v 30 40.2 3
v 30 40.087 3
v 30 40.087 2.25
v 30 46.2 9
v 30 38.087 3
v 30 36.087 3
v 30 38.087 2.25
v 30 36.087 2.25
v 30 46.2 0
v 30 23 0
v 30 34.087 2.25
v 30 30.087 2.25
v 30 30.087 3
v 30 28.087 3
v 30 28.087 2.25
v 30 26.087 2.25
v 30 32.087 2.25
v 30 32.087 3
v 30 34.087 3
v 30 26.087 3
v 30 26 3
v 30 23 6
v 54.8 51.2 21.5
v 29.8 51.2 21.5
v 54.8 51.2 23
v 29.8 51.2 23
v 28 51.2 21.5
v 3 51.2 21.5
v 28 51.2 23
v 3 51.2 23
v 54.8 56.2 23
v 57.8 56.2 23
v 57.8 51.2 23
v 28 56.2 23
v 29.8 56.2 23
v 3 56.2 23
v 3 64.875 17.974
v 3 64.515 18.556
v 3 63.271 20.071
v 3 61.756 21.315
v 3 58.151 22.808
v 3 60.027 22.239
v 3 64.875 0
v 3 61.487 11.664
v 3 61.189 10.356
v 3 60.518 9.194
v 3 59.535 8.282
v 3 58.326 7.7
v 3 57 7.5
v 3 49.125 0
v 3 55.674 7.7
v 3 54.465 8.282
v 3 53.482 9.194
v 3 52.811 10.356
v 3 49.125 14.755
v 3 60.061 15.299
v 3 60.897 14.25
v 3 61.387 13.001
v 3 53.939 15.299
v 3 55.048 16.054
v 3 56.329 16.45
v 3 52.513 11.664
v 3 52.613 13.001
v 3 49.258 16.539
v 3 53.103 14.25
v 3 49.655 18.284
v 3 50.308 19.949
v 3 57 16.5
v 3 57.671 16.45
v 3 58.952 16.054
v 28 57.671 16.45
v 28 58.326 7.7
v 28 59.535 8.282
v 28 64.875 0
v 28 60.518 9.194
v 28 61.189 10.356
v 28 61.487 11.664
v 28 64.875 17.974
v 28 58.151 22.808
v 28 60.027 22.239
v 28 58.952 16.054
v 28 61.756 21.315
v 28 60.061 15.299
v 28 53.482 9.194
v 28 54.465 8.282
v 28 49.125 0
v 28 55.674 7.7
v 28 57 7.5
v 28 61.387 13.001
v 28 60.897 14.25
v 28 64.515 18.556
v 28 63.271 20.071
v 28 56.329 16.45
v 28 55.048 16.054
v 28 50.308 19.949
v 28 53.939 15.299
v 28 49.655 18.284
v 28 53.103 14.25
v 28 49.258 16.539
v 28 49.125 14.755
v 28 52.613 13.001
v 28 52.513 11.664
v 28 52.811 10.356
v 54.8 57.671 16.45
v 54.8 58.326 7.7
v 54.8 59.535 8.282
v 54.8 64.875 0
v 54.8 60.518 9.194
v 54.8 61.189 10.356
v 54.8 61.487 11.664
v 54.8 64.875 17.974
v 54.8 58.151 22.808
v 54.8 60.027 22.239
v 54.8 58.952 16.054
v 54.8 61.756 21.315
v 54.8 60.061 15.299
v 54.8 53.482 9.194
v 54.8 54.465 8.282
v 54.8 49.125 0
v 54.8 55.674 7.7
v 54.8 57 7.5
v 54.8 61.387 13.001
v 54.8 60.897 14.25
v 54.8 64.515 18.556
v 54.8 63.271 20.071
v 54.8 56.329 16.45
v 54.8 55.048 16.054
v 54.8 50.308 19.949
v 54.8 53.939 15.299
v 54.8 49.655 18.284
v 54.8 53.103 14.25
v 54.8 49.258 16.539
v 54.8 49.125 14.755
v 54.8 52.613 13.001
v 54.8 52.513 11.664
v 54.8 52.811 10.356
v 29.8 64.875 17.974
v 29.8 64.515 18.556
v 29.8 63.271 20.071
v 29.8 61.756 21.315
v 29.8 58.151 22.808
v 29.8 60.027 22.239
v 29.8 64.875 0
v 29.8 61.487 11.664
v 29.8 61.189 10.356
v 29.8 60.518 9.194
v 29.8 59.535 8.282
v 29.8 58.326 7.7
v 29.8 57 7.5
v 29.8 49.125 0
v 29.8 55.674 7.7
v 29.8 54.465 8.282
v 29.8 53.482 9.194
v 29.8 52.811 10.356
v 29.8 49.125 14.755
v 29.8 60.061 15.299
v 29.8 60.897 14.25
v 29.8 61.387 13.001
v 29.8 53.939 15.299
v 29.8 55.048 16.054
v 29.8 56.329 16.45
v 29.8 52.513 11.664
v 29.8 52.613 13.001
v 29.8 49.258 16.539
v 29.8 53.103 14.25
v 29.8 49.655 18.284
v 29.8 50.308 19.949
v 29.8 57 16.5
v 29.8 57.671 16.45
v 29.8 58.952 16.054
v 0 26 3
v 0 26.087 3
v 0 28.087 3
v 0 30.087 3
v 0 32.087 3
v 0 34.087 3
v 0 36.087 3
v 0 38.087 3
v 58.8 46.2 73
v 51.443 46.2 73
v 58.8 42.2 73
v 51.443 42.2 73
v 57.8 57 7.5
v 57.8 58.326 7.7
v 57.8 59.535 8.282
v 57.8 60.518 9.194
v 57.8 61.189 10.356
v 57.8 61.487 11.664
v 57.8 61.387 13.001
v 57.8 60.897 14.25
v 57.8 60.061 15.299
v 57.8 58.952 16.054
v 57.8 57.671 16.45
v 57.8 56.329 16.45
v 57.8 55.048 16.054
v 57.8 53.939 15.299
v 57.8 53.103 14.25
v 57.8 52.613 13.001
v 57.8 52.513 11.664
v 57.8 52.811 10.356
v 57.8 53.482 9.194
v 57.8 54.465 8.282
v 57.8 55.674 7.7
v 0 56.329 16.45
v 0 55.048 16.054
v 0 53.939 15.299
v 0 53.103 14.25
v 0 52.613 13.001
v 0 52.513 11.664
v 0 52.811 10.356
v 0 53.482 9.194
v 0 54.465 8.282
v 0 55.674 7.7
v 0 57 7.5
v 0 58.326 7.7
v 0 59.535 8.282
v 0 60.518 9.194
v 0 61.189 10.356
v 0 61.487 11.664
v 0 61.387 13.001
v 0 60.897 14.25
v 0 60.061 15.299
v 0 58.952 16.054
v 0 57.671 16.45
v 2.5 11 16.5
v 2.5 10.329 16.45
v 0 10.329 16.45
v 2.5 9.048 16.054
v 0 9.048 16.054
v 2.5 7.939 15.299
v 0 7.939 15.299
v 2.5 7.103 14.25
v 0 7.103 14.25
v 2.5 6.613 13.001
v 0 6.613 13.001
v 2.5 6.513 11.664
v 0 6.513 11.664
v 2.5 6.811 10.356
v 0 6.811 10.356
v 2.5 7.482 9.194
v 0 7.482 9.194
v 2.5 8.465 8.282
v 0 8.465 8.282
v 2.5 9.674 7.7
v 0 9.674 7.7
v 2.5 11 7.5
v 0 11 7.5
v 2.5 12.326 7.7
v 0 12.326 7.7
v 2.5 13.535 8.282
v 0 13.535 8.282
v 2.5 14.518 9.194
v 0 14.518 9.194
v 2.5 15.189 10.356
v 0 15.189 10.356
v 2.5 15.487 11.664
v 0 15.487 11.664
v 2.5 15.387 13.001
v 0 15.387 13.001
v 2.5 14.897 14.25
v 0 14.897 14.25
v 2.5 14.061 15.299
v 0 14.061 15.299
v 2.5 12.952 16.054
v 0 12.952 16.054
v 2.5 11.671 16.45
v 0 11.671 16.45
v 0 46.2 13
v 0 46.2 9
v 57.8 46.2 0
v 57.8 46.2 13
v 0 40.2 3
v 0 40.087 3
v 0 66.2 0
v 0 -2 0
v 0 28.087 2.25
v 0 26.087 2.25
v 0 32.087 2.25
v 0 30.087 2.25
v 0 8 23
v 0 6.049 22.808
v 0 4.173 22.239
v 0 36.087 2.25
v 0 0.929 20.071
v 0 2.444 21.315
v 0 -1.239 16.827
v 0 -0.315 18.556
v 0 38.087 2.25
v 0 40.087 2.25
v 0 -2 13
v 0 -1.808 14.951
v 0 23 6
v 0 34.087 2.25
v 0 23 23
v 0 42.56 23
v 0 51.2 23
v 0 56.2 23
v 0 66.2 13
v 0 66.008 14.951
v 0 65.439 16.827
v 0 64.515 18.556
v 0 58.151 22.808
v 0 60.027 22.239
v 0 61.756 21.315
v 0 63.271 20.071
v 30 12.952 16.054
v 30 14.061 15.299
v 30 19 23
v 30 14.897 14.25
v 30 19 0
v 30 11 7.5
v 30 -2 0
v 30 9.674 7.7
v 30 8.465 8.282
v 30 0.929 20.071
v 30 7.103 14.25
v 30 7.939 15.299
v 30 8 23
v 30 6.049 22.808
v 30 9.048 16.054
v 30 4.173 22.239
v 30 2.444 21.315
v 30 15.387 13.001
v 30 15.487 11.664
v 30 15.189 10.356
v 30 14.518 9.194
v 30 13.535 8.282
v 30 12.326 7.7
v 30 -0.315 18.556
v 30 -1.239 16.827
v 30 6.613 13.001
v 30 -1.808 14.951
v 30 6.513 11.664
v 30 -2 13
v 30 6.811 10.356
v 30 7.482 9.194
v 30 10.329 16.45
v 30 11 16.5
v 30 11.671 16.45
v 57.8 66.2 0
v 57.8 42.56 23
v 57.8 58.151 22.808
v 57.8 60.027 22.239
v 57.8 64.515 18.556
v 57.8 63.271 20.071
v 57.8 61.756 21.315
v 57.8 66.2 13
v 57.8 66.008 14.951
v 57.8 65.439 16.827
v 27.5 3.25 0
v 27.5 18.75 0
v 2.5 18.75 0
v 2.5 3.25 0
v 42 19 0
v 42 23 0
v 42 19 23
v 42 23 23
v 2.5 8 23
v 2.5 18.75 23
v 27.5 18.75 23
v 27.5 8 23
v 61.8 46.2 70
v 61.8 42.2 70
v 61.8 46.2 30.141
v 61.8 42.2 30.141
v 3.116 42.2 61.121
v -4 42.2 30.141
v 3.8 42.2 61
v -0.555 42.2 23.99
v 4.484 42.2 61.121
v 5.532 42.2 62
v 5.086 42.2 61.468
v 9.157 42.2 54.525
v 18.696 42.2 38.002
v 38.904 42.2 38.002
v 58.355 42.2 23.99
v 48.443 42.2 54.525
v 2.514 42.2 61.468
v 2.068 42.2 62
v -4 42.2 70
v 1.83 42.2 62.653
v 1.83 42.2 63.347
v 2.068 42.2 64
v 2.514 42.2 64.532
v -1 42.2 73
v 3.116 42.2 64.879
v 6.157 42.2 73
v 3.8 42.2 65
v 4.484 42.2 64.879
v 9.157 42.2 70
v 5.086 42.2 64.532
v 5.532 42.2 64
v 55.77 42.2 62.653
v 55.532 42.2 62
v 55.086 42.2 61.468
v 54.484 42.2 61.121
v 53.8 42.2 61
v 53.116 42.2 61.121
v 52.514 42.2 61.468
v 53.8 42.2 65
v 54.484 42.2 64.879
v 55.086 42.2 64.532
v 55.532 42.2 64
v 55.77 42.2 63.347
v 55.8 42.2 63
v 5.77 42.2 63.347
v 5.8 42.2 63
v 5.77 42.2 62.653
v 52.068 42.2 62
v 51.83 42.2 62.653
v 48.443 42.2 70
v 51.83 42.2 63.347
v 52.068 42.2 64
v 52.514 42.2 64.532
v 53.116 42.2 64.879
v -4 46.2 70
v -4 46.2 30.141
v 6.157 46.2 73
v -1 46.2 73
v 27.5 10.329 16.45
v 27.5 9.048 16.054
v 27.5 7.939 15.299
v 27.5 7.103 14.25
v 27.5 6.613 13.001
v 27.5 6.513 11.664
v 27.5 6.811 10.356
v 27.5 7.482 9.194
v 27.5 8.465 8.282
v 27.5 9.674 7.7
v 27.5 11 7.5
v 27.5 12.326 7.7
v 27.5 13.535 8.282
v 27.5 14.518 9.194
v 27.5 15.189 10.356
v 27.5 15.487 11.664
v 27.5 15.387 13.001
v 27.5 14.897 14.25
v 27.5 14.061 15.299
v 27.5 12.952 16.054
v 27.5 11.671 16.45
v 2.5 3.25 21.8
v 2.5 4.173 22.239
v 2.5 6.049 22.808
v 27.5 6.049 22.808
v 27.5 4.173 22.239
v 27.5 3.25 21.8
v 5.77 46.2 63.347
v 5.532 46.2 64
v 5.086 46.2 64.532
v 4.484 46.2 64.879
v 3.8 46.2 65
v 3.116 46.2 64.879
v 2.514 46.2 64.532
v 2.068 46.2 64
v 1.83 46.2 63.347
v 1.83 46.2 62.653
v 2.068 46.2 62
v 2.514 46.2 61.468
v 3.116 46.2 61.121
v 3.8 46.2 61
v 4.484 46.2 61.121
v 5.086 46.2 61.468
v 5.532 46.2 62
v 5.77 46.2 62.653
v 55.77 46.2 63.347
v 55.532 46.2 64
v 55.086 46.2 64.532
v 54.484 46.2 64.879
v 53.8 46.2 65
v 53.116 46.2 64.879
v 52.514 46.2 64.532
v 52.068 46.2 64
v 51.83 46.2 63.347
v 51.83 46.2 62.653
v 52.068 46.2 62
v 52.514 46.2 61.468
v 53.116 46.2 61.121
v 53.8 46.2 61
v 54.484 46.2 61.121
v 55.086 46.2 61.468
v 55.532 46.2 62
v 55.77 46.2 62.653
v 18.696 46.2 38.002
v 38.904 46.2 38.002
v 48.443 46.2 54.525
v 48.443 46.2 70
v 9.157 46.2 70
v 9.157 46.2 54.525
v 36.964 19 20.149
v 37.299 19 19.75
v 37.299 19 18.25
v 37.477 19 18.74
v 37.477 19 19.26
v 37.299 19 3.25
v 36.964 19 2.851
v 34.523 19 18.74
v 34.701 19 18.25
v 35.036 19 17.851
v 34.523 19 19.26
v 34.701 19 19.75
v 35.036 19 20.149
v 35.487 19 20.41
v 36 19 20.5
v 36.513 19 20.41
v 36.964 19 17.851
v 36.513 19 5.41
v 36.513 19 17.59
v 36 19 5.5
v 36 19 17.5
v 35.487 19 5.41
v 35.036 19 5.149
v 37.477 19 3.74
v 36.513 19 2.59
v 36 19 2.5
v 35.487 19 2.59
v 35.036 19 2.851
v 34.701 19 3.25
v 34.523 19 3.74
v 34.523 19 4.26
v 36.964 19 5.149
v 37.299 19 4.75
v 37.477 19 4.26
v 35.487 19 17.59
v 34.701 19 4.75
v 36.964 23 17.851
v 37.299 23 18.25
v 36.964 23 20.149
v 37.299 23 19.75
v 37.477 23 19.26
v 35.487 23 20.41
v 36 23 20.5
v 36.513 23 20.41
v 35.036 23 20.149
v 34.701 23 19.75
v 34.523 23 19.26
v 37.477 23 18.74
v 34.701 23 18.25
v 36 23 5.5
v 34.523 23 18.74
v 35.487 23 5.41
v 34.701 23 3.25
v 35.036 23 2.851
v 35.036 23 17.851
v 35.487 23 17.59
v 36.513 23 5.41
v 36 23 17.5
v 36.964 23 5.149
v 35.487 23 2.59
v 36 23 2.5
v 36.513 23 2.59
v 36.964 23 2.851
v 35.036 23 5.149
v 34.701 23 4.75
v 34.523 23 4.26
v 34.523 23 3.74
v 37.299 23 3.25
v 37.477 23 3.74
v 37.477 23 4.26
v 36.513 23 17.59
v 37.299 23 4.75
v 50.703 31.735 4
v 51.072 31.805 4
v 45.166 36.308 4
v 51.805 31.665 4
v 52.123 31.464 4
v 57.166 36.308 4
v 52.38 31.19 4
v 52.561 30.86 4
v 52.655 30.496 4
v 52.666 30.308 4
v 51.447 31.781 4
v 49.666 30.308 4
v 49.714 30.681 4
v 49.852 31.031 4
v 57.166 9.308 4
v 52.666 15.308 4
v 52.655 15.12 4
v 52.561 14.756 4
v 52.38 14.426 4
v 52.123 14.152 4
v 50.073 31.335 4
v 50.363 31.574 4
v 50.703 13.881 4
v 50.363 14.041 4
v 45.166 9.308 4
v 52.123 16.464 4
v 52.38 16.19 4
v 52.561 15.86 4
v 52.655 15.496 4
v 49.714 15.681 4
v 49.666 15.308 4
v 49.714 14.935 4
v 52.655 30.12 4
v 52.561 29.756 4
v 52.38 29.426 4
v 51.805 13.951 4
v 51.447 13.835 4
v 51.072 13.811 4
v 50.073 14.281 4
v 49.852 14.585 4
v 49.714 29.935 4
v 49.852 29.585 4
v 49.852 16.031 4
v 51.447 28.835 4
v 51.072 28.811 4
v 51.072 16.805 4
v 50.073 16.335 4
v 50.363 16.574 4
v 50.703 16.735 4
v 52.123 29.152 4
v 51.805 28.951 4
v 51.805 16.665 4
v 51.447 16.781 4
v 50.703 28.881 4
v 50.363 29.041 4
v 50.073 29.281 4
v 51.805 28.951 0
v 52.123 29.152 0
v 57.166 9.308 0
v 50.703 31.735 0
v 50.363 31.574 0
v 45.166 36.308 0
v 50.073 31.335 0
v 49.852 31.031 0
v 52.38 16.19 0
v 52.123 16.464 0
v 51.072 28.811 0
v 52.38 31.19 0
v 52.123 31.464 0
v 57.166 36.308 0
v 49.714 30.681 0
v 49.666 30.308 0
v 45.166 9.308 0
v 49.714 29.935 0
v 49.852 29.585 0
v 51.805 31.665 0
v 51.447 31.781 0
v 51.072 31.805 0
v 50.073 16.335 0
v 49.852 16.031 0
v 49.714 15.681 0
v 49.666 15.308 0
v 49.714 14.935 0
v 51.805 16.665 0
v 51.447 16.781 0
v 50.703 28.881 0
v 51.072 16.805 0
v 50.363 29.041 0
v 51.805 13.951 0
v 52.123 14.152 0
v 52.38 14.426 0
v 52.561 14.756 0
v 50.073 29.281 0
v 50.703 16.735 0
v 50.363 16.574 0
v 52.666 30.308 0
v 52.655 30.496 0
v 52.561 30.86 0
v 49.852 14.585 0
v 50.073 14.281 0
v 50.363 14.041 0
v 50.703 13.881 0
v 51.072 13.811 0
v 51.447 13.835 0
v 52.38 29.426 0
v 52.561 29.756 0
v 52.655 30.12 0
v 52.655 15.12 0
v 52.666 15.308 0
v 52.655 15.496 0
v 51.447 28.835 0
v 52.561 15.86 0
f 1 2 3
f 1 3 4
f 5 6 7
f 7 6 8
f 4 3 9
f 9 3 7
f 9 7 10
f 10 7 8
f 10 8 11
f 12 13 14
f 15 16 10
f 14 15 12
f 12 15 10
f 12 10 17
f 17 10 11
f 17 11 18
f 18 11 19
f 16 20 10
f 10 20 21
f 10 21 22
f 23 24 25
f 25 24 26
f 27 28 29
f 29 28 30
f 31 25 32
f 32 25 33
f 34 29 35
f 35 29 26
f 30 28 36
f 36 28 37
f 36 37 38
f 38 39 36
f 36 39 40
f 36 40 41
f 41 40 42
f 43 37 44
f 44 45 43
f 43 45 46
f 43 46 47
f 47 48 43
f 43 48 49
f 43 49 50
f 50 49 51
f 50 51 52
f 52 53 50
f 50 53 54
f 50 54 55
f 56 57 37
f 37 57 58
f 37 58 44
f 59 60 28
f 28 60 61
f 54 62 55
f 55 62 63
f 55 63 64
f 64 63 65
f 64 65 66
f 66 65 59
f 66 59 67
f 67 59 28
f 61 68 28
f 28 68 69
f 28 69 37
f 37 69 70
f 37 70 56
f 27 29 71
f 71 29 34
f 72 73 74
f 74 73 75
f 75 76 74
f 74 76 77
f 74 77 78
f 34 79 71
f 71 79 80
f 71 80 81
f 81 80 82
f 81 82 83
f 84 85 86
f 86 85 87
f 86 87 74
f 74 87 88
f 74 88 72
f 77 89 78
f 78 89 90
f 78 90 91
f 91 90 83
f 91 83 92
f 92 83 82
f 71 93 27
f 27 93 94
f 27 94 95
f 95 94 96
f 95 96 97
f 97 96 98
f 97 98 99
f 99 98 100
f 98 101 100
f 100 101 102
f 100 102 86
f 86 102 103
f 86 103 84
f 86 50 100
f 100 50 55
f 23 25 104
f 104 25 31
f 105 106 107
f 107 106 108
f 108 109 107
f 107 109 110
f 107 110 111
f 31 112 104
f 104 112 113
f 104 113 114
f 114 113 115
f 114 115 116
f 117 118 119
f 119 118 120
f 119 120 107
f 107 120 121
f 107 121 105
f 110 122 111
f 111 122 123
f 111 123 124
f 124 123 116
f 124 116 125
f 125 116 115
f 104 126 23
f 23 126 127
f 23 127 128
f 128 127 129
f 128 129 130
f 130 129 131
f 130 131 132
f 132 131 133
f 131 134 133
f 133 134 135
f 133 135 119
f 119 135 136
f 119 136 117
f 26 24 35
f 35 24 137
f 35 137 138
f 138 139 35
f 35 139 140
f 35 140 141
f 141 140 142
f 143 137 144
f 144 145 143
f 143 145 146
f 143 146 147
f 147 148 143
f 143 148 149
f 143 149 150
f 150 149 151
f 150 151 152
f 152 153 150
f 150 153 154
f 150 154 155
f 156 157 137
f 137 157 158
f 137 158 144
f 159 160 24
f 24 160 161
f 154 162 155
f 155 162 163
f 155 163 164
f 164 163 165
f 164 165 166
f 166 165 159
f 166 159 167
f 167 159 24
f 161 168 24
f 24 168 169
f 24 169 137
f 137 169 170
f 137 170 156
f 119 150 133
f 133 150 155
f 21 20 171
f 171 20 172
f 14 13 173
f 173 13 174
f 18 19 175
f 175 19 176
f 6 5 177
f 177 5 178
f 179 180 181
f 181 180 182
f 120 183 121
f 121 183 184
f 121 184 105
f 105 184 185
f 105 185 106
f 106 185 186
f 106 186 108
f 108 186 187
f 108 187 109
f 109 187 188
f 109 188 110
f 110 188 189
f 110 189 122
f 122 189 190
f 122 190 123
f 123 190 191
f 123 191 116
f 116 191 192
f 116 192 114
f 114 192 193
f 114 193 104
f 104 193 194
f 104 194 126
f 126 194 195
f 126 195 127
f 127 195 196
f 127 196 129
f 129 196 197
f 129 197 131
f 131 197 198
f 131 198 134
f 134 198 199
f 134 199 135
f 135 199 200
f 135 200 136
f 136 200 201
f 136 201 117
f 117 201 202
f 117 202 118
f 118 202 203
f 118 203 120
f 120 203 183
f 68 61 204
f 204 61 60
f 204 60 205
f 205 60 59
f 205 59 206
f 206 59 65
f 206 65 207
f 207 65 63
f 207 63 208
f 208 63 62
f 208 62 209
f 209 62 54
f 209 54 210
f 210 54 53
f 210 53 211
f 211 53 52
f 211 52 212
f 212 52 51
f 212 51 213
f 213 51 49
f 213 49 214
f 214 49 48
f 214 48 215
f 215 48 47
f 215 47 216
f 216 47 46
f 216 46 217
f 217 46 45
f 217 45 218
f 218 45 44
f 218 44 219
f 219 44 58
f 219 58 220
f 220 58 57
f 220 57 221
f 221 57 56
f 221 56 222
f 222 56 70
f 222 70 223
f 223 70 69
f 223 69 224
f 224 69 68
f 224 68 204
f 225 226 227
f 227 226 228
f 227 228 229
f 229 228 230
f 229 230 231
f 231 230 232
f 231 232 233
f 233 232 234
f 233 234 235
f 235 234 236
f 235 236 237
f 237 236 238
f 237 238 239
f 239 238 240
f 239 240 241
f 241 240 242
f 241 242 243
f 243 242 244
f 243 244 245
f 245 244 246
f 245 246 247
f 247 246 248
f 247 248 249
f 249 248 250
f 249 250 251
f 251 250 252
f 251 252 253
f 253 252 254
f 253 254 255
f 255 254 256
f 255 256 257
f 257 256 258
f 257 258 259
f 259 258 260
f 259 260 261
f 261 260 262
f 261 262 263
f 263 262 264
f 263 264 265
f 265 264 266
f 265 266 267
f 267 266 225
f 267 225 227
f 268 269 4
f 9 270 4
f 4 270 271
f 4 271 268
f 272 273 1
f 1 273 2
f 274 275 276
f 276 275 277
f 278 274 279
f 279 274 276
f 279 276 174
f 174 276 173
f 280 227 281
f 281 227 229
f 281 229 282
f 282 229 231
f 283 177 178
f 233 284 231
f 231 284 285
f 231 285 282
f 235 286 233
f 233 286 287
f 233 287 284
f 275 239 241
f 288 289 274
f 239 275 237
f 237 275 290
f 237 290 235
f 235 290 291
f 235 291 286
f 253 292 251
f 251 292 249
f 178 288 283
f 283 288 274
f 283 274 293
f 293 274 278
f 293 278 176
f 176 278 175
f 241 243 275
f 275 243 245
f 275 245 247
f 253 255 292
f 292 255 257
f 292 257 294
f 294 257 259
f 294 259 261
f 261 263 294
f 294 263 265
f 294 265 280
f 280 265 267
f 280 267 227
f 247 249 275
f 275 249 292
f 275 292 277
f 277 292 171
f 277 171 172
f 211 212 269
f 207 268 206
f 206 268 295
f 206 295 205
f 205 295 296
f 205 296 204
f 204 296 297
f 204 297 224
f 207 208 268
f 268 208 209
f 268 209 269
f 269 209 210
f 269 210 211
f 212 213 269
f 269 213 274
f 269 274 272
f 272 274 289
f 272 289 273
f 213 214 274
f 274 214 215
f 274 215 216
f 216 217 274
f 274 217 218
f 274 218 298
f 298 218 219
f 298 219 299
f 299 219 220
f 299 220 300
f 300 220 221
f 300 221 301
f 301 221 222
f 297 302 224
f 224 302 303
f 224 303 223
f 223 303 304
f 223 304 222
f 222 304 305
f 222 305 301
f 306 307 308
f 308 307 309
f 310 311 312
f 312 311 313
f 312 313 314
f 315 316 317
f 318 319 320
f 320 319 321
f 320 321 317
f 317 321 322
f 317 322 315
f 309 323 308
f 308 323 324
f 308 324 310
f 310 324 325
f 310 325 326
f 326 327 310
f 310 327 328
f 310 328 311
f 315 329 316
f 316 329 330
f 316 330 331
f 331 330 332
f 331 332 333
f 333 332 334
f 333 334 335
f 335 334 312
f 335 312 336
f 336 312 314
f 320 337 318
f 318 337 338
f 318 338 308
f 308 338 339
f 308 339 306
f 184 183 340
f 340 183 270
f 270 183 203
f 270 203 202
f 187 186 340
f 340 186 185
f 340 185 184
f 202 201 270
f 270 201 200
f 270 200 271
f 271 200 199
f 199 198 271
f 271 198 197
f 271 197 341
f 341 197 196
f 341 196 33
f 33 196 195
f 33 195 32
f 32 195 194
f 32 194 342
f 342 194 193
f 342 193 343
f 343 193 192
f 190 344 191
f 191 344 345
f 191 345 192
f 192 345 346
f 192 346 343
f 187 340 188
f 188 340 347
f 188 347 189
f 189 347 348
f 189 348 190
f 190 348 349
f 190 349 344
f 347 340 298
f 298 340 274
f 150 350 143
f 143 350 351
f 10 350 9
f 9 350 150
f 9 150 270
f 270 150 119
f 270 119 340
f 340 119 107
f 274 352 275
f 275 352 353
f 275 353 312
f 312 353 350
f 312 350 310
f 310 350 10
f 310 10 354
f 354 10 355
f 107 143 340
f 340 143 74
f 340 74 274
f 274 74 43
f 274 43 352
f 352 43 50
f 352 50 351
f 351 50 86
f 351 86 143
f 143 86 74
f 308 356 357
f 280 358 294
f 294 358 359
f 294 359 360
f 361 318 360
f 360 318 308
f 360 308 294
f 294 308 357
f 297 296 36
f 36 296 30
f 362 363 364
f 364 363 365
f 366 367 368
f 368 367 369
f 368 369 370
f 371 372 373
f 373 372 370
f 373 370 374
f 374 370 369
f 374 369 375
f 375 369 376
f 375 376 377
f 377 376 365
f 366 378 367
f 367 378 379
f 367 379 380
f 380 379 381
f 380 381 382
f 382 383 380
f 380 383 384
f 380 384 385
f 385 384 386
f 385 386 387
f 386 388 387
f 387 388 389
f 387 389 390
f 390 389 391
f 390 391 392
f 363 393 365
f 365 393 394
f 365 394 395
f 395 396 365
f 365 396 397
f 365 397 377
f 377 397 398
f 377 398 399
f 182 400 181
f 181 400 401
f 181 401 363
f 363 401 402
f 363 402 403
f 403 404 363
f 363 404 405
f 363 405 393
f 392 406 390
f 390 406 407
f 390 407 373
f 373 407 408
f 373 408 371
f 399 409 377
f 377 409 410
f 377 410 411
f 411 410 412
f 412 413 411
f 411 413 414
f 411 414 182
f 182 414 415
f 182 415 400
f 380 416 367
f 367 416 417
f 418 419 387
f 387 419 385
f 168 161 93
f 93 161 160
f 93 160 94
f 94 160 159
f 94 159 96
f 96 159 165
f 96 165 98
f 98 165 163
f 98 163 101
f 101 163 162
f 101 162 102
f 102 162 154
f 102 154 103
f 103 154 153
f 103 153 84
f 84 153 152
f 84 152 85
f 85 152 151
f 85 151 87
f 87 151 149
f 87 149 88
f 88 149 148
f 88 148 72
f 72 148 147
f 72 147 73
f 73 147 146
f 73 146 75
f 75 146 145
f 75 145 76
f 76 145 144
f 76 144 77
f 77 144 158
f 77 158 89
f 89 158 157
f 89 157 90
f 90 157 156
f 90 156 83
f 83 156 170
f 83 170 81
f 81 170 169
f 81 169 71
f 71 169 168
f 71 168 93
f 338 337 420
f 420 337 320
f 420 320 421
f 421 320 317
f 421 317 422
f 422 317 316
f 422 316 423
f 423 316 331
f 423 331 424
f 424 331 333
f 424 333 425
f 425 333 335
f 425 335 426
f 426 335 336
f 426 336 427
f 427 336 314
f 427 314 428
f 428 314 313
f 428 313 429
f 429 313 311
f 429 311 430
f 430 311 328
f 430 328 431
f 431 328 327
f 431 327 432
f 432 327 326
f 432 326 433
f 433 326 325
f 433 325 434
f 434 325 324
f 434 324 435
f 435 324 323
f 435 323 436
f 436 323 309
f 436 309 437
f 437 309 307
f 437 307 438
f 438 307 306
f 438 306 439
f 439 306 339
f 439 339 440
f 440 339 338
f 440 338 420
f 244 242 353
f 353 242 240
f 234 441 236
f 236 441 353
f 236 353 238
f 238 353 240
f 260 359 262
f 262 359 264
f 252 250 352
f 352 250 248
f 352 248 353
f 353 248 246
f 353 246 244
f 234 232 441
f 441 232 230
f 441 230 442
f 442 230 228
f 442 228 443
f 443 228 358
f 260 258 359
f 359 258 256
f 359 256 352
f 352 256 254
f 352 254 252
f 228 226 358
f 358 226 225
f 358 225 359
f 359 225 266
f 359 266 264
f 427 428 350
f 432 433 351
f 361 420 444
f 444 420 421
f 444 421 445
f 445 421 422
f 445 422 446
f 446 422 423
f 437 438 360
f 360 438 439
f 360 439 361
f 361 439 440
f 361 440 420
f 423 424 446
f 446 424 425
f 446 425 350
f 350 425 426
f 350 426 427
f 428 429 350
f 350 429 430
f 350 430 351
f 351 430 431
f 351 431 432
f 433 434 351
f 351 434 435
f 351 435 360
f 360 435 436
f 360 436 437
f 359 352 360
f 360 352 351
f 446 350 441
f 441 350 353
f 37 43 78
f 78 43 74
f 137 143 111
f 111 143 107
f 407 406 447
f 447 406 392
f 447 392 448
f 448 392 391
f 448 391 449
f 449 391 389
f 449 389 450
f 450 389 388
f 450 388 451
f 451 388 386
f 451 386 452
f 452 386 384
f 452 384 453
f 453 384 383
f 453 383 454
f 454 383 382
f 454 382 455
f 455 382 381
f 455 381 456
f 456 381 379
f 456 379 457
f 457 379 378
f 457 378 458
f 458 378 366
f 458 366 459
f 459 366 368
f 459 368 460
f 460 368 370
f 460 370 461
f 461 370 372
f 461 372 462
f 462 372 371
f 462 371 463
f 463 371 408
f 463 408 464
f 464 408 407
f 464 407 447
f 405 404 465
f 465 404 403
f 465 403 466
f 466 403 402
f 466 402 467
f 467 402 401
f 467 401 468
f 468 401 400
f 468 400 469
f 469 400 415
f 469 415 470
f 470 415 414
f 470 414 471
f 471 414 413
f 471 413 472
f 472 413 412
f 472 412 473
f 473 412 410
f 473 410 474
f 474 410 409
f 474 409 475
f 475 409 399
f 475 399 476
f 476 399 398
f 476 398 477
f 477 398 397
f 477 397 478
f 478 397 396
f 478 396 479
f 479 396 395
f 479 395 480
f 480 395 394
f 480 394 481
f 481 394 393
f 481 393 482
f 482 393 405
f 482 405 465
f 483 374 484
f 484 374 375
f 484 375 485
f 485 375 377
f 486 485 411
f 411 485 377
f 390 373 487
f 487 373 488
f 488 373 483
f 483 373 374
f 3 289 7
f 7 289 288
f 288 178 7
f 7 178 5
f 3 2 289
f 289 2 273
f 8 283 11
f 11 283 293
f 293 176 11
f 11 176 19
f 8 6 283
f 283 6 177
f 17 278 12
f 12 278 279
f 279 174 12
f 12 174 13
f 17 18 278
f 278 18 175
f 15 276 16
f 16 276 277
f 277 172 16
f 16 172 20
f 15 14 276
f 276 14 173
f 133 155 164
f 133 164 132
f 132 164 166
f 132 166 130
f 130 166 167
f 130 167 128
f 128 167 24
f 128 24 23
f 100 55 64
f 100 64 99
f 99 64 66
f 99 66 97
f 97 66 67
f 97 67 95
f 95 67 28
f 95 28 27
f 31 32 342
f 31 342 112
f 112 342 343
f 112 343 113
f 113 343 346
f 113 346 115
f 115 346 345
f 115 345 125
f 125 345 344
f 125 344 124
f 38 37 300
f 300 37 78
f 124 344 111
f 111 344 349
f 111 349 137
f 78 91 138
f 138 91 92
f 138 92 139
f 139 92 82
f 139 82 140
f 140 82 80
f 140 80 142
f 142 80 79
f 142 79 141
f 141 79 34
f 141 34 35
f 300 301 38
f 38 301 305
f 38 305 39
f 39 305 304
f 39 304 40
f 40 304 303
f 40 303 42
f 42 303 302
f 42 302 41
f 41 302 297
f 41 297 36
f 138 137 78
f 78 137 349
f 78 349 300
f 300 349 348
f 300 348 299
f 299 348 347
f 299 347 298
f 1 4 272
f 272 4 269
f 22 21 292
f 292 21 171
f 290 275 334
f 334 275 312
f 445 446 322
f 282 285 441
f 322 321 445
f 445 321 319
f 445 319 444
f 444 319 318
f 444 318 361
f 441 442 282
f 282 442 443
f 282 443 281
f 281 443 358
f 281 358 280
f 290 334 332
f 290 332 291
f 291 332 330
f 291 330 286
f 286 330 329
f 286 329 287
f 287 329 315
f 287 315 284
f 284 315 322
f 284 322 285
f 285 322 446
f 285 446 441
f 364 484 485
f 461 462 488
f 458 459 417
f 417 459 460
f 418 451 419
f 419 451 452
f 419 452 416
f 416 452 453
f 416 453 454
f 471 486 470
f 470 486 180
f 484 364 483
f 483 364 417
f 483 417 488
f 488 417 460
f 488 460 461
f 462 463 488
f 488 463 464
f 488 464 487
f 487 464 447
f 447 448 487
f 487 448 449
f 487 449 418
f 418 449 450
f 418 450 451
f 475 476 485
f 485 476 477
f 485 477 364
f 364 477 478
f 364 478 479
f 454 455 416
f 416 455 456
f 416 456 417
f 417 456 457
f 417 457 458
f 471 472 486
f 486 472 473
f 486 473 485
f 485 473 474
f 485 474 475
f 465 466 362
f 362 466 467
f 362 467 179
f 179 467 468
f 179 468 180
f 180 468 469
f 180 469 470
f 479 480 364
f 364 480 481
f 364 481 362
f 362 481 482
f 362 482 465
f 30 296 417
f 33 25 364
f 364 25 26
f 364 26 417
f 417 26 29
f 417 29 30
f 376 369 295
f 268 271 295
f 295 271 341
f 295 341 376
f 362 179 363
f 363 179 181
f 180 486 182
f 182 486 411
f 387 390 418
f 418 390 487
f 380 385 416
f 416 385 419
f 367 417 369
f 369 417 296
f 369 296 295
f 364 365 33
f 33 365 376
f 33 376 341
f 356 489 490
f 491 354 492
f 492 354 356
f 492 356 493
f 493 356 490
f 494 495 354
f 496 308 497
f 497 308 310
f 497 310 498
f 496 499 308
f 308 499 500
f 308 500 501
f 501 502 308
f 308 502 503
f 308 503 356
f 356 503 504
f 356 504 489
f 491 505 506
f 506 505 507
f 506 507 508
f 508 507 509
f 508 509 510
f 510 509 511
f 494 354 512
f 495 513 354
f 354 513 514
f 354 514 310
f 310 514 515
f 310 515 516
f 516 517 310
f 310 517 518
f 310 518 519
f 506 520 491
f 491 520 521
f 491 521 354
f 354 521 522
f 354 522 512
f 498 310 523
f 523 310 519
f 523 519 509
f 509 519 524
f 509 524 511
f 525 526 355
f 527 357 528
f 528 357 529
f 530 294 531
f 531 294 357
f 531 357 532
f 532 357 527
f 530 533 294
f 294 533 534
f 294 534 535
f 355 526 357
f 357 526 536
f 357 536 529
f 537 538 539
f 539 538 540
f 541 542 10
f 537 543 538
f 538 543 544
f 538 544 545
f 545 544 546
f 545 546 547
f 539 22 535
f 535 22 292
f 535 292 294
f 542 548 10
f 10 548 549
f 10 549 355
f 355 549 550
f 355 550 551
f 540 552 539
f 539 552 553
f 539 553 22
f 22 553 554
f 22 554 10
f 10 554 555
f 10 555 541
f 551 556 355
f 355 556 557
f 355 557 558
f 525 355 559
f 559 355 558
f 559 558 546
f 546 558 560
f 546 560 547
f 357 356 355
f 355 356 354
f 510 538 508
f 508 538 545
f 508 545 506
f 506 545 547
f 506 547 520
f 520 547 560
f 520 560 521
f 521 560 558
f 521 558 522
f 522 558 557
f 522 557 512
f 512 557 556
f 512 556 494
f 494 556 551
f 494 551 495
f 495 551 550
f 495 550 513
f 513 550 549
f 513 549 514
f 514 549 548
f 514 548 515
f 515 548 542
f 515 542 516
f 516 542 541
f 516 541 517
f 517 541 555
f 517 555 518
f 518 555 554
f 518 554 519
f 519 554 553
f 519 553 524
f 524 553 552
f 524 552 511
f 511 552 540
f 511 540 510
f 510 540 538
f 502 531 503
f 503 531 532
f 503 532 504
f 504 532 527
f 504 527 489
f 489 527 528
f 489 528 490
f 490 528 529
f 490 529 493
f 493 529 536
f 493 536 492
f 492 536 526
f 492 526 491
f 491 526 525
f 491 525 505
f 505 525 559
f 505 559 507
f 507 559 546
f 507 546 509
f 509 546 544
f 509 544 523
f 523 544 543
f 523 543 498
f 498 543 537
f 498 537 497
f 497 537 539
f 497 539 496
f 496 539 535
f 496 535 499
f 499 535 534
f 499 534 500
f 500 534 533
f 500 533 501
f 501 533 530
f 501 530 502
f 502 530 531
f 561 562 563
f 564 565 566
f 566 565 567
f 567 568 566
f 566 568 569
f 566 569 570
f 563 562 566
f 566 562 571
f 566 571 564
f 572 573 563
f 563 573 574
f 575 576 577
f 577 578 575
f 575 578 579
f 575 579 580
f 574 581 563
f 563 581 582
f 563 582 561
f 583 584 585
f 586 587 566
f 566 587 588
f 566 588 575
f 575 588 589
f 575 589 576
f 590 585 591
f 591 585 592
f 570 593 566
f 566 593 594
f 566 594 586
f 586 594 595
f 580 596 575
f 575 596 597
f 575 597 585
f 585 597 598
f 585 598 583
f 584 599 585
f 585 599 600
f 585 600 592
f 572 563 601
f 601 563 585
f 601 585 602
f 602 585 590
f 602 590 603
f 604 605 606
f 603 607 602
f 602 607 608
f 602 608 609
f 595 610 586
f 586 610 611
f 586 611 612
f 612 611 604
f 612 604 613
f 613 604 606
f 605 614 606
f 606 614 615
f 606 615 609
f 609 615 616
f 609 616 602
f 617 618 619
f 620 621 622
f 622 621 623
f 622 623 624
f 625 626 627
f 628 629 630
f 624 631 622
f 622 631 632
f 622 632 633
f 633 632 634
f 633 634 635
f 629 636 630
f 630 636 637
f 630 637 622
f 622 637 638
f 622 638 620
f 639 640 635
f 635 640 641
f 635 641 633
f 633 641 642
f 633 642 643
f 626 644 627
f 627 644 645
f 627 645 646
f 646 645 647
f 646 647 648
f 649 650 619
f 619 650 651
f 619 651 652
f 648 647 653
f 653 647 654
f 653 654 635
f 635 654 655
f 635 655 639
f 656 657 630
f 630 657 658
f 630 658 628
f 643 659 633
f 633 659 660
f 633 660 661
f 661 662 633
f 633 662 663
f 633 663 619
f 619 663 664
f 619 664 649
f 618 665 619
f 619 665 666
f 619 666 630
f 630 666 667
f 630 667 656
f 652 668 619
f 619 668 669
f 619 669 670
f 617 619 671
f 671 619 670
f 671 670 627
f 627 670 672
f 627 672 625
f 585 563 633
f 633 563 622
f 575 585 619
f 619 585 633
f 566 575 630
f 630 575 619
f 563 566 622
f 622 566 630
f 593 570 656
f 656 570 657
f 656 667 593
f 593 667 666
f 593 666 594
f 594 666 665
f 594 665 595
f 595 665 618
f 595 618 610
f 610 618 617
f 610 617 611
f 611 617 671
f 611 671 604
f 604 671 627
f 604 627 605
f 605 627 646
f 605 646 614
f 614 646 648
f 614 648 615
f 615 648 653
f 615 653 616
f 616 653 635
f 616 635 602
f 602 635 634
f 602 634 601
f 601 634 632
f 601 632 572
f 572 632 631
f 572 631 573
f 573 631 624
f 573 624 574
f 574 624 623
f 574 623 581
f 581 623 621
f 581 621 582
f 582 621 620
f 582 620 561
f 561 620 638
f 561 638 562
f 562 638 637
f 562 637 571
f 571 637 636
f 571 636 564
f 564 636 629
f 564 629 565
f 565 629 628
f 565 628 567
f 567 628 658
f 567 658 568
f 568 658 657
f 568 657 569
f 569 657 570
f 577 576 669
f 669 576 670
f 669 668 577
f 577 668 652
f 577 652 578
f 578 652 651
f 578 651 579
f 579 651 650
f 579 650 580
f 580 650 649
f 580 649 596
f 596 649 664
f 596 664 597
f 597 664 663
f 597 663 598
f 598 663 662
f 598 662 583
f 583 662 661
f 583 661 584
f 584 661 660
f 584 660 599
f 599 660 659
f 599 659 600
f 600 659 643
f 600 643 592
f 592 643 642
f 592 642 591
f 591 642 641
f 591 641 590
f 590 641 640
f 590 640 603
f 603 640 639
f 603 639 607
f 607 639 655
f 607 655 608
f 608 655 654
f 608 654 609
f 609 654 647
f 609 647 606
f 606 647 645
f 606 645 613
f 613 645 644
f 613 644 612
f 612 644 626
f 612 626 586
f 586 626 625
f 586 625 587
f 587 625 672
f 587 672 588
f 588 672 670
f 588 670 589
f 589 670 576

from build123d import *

# Parameters (mm, degrees)
SALIENTE_EXTRUIR3_DEPTH       = 3
CROQUIS6_W                    = 30
CROQUIS6_H                    = 20
CROQUIS6_W_2                  = 57.8
SALIENTE_EXTRUIR4_DEPTH       = 20
SALIENTE_EXTRUIR9_DEPTH       = 50
SALIENTE_EXTRUIR9_DEPTH_BACK  = 10
CROQUIS22_W                   = 65.8
CROQUIS22_H                   = 9
CROQUIS9_R                    = 4.5
CORTAR_EXTRUIR1_DEPTH         = 117.32145116
CROQUIS17_W                   = 25
CROQUIS17_H                   = 15.5
CORTAR_EXTRUIR6_DEPTH         = 23
CROQUIS18_W                   = 25
CROQUIS18_H                   = 15.75
CORTAR_EXTRUIR7_DEPTH         = 23
CROQUIS14_R                   = 2
CORTAR_EXTRUIR4_DEPTH         = 117.32145116
CROQUIS16_W                   = 3.75
CROQUIS16_H                   = 2
CORTAR_EXTRUIR5_DEPTH         = 105.247014346
SALIENTE_EXTRUIR10_DEPTH      = 51.8
CROQUIS24_W                   = 13.9
CROQUIS24_H                   = 5.2
CROQUIS24_W_2                 = 27.8
CORTAR_EXTRUIR9_DEPTH         = 115.462570301
REDONDEO1_R                   = 10
SALIENTE_EXTRUIR12_DEPTH      = 30
CROQUIS29_W                   = 30
CROQUIS29_H                   = 23
SALIENTE_EXTRUIR13_DEPTH      = 2
REDONDEO2_R                   = 10
CORTAR_EXTRUIR10_DEPTH        = 119.495063188
CHAFL_N1_SIZE                 = 3
CORTAR_EXTRUIR11_DEPTH        = 110.446242512
SALIENTE_EXTRUIR14_DEPTH      = 3
SALIENTE_EXTRUIR14_DEPTH_BACK = 1
CROQUIS12_R                   = 1.5
CROQUIS33_W                   = 12
CROQUIS33_H                   = 27
CROQUIS33_R                   = 1.5
SALIENTE_EXTRUIR15_DEPTH      = 4


with BuildPart() as part:
    # Croquis2 → Saliente-Extruir3 (new body)
    with BuildSketch(Plane.XY):
        Polygon((30, 41), (57.8, 41), (57.8, 66.2), (0, 66.2), (0, 0), (30, 0), align=None)
    extrude(amount=SALIENTE_EXTRUIR3_DEPTH)

    # Croquis6 → Saliente-Extruir4 (add)
    with BuildSketch(Plane.XY.offset(3)):
        with Locations((15, 10)):
            Rectangle(CROQUIS6_W, CROQUIS6_H)
        with Locations((28.9, 56.2)):
            Rectangle(CROQUIS6_W_2, CROQUIS6_H)
    extrude(amount=SALIENTE_EXTRUIR4_DEPTH)

    # Croquis22 → Saliente-Extruir9 (add, two sides: drawn at the far end of the back side and taken through both)
    with BuildSketch(Plane.XY.offset(23).offset(-SALIENTE_EXTRUIR9_DEPTH_BACK)):
        with Locations((28.9, 46.7)):
            Rectangle(CROQUIS22_W, CROQUIS22_H)
    extrude(amount=SALIENTE_EXTRUIR9_DEPTH + SALIENTE_EXTRUIR9_DEPTH_BACK)

    # Croquis9 → Cortar-Extruir1 (cut, through all)
    with BuildSketch(Plane(origin=(57.8, 0, 0), x_dir=(0, 0, -1), z_dir=(1, 0, 0))):
        with Locations((-12, 57)):
            Circle(CROQUIS9_R)
        with Locations((-12, 11)):
            Circle(CROQUIS9_R)
    extrude(amount=-CORTAR_EXTRUIR1_DEPTH, mode=Mode.SUBTRACT)

    # Croquis17 → Cortar-Extruir6 (cut)
    with BuildSketch(Plane.XY.offset(23)):
        with Locations((15, 11)):
            Rectangle(CROQUIS17_W, CROQUIS17_H)
    extrude(amount=-CORTAR_EXTRUIR6_DEPTH, mode=Mode.SUBTRACT)

    # Croquis18 → Cortar-Extruir7 (cut)
    with BuildSketch(Plane.XY.offset(23)):
        with Locations((15.5, 57)):
            Rectangle(CROQUIS18_W, CROQUIS18_H)
        with Locations((42.3, 57)):
            Rectangle(CROQUIS18_W, CROQUIS18_H)
    extrude(amount=-CORTAR_EXTRUIR7_DEPTH, mode=Mode.SUBTRACT)

    # Croquis14 → Cortar-Extruir4 (cut, through all)
    with BuildSketch(Plane(origin=(0, 66.2, 0), x_dir=(1, 0, 0), z_dir=(0, 1, 0))):
        with Locations(Location((3.8, -63, 0), (0, 0, 180))):
            Circle(CROQUIS14_R)
        with Locations(Location((53.8, -63, 0), (0, 0, 180))):
            Circle(CROQUIS14_R)
        Polygon((9.156552599, -54.525284491), (9.156552599, -73), (48.443447401, -73), (48.443447401, -54.525284491), (38.903629711, -38.001835556), (18.696370289, -38.001835556), align=None)
    extrude(amount=-CORTAR_EXTRUIR4_DEPTH, mode=Mode.SUBTRACT)

    # Croquis16 → Cortar-Extruir5 (cut, through all)
    with BuildSketch(Plane(origin=(30, 0, 0), x_dir=(0, 0, -1), z_dir=(1, 0, 0))):
        with Locations((-4.125, 35.087449781)):
            Rectangle(CROQUIS16_W, CROQUIS16_H)
        with Locations((-4.125, 39.087449781)):
            Rectangle(CROQUIS16_W, CROQUIS16_H)
        with Locations((-4.125, 31.087449781)):
            Rectangle(CROQUIS16_W, CROQUIS16_H)
        with Locations((-4.125, 27.087449781)):
            Rectangle(CROQUIS16_W, CROQUIS16_H)
    extrude(amount=-CORTAR_EXTRUIR5_DEPTH, mode=Mode.SUBTRACT)

    # Croquis23 → Saliente-Extruir10 (add)
    with BuildSketch(Plane(origin=(3, 0, 0), x_dir=(0, 0, -1), z_dir=(1, 0, 0))):
        with BuildLine():
            Line((-23, 49.125), (-14.755048184, 49.125))
            ThreePointArc((-14.755048184, 49.125), (-18.283503937, 49.655475162), (-21.5, 51.2))
            Line((-21.5, 51.2), (-23, 51.2))
            Line((-23, 51.2), (-23, 49.125))
        make_face()
    extrude(amount=SALIENTE_EXTRUIR10_DEPTH)

    # Croquis24 → Cortar-Extruir9 (cut, through all)
    with BuildSketch(Plane.XY.offset(3)):
        with Locations((-6.95, 43.6)):
            Rectangle(CROQUIS24_W, CROQUIS24_H)
        with Locations((43.9, 43.6)):
            Rectangle(CROQUIS24_W_2, CROQUIS24_H)
    extrude(amount=-CORTAR_EXTRUIR9_DEPTH, mode=Mode.SUBTRACT)

    # Redondeo1
    # the kernel refuses this fillet: 10 mm, written as the material it takes off along each edge
    with BuildSketch(Plane(origin=(-25, 66.2, 23), x_dir=(0, -1, 0), z_dir=(1, 0, 0))) as redondeo1_piece_1:
        with BuildLine():
            CenterArc((REDONDEO1_R, REDONDEO1_R), REDONDEO1_R, 180, 90)
            Line((0, REDONDEO1_R), (0, 0))
            Line((0, 0), (REDONDEO1_R, 0))
        make_face()
    extrude(amount=107.8, mode=Mode.SUBTRACT)

    # Croquis28 → Saliente-Extruir12 (add)
    with BuildSketch(Plane(origin=(30, 0, 0), x_dir=(0, 0, -1), z_dir=(1, 0, 0))):
        Polygon((-9, 46.2), (-3, 40.2), (-3, 46.2), align=None)
        Polygon((-3, 26), (-6, 23), (-3, 23), align=None)
    extrude(amount=-SALIENTE_EXTRUIR12_DEPTH)

    # Croquis29 → Saliente-Extruir13 (add)
    with BuildSketch(Plane.XZ):
        with Locations((15, 11.5)):
            Rectangle(CROQUIS29_W, CROQUIS29_H)
    extrude(amount=SALIENTE_EXTRUIR13_DEPTH)

    # Redondeo2
    # the kernel refuses this fillet: 10 mm, written as the material it takes off along each edge
    with BuildSketch(Plane(origin=(55, -2, 23), x_dir=(0, 0, -1), z_dir=(-1, 0, 0))) as redondeo2_piece_1:
        with BuildLine():
            CenterArc((REDONDEO2_R, -REDONDEO2_R), REDONDEO2_R, 90, 90)
            Line((0, -REDONDEO2_R), (0, 0))
            Line((0, 0), (REDONDEO2_R, 0))
        make_face()
    extrude(amount=80, mode=Mode.SUBTRACT)

    # Croquis31 → Cortar-Extruir10 (cut, through all)
    with BuildSketch(Plane(origin=(61.8, 0, 0), x_dir=(0, 0, -1), z_dir=(1, 0, 0))):
        Polygon((-73, 46.2), (-30.140740034, 46.2), (-23, 51.2), (-73, 51.2), align=None)
        Polygon((-13, 46.2), (-23.989909678, 42.2), (-13, 42.2), align=None)
    extrude(amount=-CORTAR_EXTRUIR10_DEPTH, mode=Mode.SUBTRACT)

    # Chaflán1
    chafl_n1_edges = [part.edges().sort_by_distance(p)[0] for p in [
        (48.443447401, 44.2, 73),
        (9.156552599, 44.2, 73),
        (-4, 44.2, 73),
        (61.8, 44.2, 73),
    ]]
    chamfer(chafl_n1_edges, length=CHAFL_N1_SIZE)

    # Croquis32 → Cortar-Extruir11 (cut, through all)
    with BuildSketch(Plane(origin=(0, 51.2, 0), x_dir=(1, 0, 0), z_dir=(0, 1, 0))):
        Polygon((0, -13), (-4, -13), (-4, -30.140740034), (0, -23), align=None)
        Polygon((57.8, -13), (61.8, -13), (61.8, -30.140740034), (57.8, -23), align=None)
    extrude(amount=-CORTAR_EXTRUIR11_DEPTH, mode=Mode.SUBTRACT)

    # Croquis12 → Saliente-Extruir14 (add, two sides: drawn at the far end of the back side and taken through both)
    with BuildSketch(Plane(origin=(0, 20, 0), x_dir=(1, 0, 0), z_dir=(0, 1, 0)).offset(-SALIENTE_EXTRUIR14_DEPTH_BACK)):
        Polygon((30, 0), (30, -3), (0, -3), (0, -23), (42, -23), (42, 0), align=None)
        with Locations(Location((36, -19, 0), (0, 0, 270))):
            Circle(CROQUIS12_R, mode=Mode.SUBTRACT)
        with Locations(Location((36, -4, 0), (0, 0, 270))):
            Circle(CROQUIS12_R, mode=Mode.SUBTRACT)
    extrude(amount=SALIENTE_EXTRUIR14_DEPTH + SALIENTE_EXTRUIR14_DEPTH_BACK)


with BuildPart() as body_2:
    # Croquis33 → Saliente-Extruir15 (new body)
    with BuildSketch(Plane.XY):
        with Locations((51.166419269, 22.8079829)):
            Rectangle(CROQUIS33_W, CROQUIS33_H)
        with Locations((51.166419269, 30.3079829)):
            Circle(CROQUIS33_R, mode=Mode.SUBTRACT)
        with Locations((51.166419269, 15.3079829)):
            Circle(CROQUIS33_R, mode=Mode.SUBTRACT)
    extrude(amount=SALIENTE_EXTRUIR15_DEPTH)


solid = Compound([part.part, body_2.part])
